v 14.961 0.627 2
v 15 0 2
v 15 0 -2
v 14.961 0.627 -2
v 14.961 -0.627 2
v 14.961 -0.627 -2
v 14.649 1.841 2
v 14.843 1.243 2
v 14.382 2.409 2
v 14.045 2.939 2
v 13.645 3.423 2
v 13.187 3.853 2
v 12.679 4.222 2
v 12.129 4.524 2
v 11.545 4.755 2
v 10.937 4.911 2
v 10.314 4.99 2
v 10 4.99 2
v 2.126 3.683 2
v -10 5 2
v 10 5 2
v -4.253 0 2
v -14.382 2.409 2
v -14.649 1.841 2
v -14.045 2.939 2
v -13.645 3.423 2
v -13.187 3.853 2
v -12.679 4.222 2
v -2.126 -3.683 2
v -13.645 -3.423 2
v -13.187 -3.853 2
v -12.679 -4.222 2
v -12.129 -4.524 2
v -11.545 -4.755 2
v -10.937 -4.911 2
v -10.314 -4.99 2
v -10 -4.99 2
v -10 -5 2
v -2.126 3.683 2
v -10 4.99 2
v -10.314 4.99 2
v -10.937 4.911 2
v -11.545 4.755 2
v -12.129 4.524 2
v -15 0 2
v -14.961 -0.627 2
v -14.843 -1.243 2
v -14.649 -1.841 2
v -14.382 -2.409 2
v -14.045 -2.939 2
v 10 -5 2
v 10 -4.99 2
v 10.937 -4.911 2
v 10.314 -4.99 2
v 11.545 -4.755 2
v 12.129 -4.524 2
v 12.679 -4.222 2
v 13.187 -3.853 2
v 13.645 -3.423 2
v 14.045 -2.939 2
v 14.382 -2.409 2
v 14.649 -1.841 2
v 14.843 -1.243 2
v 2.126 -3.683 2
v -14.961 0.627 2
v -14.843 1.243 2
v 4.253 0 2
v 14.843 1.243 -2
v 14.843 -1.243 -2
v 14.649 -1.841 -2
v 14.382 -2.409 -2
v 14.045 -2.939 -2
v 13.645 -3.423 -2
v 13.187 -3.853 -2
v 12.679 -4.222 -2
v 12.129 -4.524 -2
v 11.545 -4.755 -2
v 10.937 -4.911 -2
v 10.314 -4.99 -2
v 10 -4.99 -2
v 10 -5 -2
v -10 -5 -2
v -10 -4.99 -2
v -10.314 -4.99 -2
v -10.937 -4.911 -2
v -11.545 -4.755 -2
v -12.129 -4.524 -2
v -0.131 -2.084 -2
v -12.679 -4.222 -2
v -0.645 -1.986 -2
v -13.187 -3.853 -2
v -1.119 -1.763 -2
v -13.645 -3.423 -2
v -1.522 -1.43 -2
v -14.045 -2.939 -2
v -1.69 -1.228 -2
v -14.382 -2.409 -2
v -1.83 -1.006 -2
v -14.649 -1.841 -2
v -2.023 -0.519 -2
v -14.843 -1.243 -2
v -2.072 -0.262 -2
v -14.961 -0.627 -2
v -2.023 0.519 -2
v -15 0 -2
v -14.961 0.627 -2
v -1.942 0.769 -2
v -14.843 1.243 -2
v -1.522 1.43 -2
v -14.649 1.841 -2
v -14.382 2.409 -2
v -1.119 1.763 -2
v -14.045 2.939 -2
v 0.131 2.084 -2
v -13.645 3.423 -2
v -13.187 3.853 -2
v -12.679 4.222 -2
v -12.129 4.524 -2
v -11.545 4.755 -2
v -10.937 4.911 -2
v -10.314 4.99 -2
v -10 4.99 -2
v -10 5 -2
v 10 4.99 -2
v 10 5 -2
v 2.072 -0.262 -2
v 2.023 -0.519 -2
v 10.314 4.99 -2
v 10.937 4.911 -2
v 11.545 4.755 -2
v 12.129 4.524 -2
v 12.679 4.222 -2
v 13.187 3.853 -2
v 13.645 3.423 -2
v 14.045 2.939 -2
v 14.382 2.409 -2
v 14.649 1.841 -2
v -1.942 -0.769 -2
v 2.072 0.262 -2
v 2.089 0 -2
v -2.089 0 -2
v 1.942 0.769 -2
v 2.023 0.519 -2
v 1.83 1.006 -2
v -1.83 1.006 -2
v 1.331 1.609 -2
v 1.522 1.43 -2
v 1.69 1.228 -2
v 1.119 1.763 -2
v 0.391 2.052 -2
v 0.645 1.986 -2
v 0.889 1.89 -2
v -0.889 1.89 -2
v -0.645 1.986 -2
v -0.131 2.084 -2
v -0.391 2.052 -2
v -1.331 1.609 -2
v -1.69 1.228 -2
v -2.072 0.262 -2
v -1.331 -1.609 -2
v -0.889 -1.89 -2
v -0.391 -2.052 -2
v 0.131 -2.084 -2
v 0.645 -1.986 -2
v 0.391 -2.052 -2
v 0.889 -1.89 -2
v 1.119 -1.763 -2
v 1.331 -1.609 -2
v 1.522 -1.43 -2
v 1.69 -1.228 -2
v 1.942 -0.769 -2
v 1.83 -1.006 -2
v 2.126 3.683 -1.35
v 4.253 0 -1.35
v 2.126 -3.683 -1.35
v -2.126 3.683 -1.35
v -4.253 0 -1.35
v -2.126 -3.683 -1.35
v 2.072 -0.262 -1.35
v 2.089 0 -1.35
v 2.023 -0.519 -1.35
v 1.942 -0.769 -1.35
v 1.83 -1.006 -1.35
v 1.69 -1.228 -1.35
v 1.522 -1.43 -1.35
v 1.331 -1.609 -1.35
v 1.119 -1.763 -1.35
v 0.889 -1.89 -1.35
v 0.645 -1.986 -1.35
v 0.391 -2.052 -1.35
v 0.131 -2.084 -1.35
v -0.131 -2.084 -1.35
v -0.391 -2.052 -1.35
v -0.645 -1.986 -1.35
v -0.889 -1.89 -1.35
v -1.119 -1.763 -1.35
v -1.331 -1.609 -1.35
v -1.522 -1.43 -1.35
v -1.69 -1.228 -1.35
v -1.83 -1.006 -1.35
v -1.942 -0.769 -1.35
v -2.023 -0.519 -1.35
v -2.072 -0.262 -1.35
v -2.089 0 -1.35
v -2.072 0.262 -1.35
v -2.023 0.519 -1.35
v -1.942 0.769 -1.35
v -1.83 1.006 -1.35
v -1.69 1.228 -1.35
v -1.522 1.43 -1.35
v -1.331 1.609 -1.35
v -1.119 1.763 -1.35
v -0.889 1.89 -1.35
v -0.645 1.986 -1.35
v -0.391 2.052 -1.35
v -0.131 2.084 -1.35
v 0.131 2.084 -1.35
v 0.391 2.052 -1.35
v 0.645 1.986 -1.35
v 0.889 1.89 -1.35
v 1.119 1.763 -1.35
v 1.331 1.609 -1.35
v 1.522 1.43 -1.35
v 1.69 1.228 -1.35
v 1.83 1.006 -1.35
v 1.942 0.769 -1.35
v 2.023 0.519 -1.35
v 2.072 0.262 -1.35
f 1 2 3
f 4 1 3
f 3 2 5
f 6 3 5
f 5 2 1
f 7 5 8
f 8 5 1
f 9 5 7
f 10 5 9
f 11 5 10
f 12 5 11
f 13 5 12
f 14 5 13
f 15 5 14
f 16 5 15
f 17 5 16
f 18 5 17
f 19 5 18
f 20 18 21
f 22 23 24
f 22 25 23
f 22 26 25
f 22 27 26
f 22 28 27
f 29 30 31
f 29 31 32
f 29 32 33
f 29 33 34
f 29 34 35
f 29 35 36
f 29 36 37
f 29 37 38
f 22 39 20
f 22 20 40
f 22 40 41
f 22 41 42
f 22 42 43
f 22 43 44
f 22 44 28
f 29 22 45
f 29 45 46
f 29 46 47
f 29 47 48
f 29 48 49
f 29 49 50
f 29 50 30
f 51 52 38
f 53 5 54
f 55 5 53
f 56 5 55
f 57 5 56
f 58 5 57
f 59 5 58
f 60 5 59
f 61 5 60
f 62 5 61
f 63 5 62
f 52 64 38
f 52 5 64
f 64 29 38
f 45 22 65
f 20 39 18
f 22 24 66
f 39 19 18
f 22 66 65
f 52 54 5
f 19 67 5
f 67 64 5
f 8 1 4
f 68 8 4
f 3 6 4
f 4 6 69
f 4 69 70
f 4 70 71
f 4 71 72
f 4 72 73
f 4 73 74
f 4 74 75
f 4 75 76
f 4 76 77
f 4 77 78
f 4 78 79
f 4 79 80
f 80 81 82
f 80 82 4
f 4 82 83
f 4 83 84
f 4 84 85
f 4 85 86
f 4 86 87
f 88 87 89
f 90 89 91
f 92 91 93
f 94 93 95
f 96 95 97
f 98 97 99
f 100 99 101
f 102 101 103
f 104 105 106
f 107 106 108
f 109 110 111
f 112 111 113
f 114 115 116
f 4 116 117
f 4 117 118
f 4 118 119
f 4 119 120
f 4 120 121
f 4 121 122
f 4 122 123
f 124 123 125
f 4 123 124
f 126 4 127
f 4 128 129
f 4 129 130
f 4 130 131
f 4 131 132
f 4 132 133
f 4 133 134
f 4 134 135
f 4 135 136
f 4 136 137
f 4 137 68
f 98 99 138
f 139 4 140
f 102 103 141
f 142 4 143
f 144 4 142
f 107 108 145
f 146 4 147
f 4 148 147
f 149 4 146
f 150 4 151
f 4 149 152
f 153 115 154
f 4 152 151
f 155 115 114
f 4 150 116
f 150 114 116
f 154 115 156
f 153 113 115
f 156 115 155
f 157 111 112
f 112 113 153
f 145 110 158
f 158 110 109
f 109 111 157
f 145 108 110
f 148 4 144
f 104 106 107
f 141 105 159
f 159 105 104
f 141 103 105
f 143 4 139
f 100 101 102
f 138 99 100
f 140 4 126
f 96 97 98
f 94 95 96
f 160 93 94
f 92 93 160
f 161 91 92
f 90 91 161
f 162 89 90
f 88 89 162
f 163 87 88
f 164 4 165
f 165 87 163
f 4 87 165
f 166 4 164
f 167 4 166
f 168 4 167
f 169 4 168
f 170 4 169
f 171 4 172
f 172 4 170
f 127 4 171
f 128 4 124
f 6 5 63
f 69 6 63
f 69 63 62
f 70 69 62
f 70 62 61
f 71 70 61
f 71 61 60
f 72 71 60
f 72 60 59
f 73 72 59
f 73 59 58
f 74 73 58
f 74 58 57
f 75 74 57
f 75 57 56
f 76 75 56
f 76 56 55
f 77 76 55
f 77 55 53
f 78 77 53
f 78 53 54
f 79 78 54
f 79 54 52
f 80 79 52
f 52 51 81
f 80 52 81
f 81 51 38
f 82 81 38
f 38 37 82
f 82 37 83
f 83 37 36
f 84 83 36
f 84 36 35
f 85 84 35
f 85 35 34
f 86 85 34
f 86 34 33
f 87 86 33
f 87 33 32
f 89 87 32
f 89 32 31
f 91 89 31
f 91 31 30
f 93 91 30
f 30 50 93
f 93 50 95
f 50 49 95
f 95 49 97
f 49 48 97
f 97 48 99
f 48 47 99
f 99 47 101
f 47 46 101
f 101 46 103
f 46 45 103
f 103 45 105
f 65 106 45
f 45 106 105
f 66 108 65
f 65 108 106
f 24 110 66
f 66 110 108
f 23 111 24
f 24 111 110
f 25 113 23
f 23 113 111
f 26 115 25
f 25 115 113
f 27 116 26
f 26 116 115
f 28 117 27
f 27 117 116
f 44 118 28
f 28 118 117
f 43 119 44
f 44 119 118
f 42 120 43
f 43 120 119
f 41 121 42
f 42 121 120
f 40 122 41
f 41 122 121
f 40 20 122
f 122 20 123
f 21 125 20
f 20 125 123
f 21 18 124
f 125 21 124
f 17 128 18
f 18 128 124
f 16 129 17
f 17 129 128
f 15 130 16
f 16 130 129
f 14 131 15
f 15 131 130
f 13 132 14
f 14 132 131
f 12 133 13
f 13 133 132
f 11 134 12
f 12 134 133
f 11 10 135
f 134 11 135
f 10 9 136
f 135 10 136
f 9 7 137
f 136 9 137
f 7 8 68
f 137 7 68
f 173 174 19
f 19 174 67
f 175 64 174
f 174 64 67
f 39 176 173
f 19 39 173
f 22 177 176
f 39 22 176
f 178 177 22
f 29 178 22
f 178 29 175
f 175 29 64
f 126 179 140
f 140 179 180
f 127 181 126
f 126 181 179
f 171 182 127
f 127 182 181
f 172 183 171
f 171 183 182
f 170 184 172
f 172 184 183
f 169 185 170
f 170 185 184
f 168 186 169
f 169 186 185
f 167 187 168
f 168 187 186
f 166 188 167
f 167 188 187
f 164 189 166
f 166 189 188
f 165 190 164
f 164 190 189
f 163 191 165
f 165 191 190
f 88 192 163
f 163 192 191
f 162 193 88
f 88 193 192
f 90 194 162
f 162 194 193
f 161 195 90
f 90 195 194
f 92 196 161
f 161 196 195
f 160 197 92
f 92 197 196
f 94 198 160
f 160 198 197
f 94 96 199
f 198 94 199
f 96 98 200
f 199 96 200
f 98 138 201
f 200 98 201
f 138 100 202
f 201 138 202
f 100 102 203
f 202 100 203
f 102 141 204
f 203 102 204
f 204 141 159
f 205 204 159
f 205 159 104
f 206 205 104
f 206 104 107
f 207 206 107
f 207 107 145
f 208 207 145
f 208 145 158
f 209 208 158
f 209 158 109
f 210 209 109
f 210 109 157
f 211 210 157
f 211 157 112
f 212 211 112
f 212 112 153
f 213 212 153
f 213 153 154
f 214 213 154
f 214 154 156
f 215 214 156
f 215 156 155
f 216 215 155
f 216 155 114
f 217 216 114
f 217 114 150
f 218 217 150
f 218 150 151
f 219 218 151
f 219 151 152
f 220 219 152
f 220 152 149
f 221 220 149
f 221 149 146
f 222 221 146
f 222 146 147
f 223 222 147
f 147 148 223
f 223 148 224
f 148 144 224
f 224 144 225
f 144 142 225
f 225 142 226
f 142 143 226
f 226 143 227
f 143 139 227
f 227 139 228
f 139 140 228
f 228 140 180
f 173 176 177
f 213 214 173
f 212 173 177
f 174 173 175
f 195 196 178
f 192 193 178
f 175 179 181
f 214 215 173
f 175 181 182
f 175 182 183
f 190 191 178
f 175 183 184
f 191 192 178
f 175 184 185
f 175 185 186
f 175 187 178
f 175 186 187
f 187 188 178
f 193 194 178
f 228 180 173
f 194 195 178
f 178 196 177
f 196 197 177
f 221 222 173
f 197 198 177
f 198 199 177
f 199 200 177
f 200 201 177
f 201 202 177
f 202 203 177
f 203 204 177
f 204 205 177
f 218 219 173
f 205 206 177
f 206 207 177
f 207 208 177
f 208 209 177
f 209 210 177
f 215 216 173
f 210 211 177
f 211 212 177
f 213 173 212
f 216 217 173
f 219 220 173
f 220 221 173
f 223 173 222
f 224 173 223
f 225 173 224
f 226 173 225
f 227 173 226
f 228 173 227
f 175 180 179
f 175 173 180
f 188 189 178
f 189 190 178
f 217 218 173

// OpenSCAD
include <MCAD/nuts_and_bolts.scad>
include <MCAD/boxes.scad>

fit = 1.05;

rotate([0, 180, 0]) difference() {
	union() {
		roundedBox([30,10, 4], 5, true, $fn=50);
	}

	translate([0,0,-2.01]) scale([fit, fit, fit]) nutHole(4);
	translate([0,0,-5]) scale([fit, fit, fit]) boltHole(4, MM, 10, $fn=50);
}
